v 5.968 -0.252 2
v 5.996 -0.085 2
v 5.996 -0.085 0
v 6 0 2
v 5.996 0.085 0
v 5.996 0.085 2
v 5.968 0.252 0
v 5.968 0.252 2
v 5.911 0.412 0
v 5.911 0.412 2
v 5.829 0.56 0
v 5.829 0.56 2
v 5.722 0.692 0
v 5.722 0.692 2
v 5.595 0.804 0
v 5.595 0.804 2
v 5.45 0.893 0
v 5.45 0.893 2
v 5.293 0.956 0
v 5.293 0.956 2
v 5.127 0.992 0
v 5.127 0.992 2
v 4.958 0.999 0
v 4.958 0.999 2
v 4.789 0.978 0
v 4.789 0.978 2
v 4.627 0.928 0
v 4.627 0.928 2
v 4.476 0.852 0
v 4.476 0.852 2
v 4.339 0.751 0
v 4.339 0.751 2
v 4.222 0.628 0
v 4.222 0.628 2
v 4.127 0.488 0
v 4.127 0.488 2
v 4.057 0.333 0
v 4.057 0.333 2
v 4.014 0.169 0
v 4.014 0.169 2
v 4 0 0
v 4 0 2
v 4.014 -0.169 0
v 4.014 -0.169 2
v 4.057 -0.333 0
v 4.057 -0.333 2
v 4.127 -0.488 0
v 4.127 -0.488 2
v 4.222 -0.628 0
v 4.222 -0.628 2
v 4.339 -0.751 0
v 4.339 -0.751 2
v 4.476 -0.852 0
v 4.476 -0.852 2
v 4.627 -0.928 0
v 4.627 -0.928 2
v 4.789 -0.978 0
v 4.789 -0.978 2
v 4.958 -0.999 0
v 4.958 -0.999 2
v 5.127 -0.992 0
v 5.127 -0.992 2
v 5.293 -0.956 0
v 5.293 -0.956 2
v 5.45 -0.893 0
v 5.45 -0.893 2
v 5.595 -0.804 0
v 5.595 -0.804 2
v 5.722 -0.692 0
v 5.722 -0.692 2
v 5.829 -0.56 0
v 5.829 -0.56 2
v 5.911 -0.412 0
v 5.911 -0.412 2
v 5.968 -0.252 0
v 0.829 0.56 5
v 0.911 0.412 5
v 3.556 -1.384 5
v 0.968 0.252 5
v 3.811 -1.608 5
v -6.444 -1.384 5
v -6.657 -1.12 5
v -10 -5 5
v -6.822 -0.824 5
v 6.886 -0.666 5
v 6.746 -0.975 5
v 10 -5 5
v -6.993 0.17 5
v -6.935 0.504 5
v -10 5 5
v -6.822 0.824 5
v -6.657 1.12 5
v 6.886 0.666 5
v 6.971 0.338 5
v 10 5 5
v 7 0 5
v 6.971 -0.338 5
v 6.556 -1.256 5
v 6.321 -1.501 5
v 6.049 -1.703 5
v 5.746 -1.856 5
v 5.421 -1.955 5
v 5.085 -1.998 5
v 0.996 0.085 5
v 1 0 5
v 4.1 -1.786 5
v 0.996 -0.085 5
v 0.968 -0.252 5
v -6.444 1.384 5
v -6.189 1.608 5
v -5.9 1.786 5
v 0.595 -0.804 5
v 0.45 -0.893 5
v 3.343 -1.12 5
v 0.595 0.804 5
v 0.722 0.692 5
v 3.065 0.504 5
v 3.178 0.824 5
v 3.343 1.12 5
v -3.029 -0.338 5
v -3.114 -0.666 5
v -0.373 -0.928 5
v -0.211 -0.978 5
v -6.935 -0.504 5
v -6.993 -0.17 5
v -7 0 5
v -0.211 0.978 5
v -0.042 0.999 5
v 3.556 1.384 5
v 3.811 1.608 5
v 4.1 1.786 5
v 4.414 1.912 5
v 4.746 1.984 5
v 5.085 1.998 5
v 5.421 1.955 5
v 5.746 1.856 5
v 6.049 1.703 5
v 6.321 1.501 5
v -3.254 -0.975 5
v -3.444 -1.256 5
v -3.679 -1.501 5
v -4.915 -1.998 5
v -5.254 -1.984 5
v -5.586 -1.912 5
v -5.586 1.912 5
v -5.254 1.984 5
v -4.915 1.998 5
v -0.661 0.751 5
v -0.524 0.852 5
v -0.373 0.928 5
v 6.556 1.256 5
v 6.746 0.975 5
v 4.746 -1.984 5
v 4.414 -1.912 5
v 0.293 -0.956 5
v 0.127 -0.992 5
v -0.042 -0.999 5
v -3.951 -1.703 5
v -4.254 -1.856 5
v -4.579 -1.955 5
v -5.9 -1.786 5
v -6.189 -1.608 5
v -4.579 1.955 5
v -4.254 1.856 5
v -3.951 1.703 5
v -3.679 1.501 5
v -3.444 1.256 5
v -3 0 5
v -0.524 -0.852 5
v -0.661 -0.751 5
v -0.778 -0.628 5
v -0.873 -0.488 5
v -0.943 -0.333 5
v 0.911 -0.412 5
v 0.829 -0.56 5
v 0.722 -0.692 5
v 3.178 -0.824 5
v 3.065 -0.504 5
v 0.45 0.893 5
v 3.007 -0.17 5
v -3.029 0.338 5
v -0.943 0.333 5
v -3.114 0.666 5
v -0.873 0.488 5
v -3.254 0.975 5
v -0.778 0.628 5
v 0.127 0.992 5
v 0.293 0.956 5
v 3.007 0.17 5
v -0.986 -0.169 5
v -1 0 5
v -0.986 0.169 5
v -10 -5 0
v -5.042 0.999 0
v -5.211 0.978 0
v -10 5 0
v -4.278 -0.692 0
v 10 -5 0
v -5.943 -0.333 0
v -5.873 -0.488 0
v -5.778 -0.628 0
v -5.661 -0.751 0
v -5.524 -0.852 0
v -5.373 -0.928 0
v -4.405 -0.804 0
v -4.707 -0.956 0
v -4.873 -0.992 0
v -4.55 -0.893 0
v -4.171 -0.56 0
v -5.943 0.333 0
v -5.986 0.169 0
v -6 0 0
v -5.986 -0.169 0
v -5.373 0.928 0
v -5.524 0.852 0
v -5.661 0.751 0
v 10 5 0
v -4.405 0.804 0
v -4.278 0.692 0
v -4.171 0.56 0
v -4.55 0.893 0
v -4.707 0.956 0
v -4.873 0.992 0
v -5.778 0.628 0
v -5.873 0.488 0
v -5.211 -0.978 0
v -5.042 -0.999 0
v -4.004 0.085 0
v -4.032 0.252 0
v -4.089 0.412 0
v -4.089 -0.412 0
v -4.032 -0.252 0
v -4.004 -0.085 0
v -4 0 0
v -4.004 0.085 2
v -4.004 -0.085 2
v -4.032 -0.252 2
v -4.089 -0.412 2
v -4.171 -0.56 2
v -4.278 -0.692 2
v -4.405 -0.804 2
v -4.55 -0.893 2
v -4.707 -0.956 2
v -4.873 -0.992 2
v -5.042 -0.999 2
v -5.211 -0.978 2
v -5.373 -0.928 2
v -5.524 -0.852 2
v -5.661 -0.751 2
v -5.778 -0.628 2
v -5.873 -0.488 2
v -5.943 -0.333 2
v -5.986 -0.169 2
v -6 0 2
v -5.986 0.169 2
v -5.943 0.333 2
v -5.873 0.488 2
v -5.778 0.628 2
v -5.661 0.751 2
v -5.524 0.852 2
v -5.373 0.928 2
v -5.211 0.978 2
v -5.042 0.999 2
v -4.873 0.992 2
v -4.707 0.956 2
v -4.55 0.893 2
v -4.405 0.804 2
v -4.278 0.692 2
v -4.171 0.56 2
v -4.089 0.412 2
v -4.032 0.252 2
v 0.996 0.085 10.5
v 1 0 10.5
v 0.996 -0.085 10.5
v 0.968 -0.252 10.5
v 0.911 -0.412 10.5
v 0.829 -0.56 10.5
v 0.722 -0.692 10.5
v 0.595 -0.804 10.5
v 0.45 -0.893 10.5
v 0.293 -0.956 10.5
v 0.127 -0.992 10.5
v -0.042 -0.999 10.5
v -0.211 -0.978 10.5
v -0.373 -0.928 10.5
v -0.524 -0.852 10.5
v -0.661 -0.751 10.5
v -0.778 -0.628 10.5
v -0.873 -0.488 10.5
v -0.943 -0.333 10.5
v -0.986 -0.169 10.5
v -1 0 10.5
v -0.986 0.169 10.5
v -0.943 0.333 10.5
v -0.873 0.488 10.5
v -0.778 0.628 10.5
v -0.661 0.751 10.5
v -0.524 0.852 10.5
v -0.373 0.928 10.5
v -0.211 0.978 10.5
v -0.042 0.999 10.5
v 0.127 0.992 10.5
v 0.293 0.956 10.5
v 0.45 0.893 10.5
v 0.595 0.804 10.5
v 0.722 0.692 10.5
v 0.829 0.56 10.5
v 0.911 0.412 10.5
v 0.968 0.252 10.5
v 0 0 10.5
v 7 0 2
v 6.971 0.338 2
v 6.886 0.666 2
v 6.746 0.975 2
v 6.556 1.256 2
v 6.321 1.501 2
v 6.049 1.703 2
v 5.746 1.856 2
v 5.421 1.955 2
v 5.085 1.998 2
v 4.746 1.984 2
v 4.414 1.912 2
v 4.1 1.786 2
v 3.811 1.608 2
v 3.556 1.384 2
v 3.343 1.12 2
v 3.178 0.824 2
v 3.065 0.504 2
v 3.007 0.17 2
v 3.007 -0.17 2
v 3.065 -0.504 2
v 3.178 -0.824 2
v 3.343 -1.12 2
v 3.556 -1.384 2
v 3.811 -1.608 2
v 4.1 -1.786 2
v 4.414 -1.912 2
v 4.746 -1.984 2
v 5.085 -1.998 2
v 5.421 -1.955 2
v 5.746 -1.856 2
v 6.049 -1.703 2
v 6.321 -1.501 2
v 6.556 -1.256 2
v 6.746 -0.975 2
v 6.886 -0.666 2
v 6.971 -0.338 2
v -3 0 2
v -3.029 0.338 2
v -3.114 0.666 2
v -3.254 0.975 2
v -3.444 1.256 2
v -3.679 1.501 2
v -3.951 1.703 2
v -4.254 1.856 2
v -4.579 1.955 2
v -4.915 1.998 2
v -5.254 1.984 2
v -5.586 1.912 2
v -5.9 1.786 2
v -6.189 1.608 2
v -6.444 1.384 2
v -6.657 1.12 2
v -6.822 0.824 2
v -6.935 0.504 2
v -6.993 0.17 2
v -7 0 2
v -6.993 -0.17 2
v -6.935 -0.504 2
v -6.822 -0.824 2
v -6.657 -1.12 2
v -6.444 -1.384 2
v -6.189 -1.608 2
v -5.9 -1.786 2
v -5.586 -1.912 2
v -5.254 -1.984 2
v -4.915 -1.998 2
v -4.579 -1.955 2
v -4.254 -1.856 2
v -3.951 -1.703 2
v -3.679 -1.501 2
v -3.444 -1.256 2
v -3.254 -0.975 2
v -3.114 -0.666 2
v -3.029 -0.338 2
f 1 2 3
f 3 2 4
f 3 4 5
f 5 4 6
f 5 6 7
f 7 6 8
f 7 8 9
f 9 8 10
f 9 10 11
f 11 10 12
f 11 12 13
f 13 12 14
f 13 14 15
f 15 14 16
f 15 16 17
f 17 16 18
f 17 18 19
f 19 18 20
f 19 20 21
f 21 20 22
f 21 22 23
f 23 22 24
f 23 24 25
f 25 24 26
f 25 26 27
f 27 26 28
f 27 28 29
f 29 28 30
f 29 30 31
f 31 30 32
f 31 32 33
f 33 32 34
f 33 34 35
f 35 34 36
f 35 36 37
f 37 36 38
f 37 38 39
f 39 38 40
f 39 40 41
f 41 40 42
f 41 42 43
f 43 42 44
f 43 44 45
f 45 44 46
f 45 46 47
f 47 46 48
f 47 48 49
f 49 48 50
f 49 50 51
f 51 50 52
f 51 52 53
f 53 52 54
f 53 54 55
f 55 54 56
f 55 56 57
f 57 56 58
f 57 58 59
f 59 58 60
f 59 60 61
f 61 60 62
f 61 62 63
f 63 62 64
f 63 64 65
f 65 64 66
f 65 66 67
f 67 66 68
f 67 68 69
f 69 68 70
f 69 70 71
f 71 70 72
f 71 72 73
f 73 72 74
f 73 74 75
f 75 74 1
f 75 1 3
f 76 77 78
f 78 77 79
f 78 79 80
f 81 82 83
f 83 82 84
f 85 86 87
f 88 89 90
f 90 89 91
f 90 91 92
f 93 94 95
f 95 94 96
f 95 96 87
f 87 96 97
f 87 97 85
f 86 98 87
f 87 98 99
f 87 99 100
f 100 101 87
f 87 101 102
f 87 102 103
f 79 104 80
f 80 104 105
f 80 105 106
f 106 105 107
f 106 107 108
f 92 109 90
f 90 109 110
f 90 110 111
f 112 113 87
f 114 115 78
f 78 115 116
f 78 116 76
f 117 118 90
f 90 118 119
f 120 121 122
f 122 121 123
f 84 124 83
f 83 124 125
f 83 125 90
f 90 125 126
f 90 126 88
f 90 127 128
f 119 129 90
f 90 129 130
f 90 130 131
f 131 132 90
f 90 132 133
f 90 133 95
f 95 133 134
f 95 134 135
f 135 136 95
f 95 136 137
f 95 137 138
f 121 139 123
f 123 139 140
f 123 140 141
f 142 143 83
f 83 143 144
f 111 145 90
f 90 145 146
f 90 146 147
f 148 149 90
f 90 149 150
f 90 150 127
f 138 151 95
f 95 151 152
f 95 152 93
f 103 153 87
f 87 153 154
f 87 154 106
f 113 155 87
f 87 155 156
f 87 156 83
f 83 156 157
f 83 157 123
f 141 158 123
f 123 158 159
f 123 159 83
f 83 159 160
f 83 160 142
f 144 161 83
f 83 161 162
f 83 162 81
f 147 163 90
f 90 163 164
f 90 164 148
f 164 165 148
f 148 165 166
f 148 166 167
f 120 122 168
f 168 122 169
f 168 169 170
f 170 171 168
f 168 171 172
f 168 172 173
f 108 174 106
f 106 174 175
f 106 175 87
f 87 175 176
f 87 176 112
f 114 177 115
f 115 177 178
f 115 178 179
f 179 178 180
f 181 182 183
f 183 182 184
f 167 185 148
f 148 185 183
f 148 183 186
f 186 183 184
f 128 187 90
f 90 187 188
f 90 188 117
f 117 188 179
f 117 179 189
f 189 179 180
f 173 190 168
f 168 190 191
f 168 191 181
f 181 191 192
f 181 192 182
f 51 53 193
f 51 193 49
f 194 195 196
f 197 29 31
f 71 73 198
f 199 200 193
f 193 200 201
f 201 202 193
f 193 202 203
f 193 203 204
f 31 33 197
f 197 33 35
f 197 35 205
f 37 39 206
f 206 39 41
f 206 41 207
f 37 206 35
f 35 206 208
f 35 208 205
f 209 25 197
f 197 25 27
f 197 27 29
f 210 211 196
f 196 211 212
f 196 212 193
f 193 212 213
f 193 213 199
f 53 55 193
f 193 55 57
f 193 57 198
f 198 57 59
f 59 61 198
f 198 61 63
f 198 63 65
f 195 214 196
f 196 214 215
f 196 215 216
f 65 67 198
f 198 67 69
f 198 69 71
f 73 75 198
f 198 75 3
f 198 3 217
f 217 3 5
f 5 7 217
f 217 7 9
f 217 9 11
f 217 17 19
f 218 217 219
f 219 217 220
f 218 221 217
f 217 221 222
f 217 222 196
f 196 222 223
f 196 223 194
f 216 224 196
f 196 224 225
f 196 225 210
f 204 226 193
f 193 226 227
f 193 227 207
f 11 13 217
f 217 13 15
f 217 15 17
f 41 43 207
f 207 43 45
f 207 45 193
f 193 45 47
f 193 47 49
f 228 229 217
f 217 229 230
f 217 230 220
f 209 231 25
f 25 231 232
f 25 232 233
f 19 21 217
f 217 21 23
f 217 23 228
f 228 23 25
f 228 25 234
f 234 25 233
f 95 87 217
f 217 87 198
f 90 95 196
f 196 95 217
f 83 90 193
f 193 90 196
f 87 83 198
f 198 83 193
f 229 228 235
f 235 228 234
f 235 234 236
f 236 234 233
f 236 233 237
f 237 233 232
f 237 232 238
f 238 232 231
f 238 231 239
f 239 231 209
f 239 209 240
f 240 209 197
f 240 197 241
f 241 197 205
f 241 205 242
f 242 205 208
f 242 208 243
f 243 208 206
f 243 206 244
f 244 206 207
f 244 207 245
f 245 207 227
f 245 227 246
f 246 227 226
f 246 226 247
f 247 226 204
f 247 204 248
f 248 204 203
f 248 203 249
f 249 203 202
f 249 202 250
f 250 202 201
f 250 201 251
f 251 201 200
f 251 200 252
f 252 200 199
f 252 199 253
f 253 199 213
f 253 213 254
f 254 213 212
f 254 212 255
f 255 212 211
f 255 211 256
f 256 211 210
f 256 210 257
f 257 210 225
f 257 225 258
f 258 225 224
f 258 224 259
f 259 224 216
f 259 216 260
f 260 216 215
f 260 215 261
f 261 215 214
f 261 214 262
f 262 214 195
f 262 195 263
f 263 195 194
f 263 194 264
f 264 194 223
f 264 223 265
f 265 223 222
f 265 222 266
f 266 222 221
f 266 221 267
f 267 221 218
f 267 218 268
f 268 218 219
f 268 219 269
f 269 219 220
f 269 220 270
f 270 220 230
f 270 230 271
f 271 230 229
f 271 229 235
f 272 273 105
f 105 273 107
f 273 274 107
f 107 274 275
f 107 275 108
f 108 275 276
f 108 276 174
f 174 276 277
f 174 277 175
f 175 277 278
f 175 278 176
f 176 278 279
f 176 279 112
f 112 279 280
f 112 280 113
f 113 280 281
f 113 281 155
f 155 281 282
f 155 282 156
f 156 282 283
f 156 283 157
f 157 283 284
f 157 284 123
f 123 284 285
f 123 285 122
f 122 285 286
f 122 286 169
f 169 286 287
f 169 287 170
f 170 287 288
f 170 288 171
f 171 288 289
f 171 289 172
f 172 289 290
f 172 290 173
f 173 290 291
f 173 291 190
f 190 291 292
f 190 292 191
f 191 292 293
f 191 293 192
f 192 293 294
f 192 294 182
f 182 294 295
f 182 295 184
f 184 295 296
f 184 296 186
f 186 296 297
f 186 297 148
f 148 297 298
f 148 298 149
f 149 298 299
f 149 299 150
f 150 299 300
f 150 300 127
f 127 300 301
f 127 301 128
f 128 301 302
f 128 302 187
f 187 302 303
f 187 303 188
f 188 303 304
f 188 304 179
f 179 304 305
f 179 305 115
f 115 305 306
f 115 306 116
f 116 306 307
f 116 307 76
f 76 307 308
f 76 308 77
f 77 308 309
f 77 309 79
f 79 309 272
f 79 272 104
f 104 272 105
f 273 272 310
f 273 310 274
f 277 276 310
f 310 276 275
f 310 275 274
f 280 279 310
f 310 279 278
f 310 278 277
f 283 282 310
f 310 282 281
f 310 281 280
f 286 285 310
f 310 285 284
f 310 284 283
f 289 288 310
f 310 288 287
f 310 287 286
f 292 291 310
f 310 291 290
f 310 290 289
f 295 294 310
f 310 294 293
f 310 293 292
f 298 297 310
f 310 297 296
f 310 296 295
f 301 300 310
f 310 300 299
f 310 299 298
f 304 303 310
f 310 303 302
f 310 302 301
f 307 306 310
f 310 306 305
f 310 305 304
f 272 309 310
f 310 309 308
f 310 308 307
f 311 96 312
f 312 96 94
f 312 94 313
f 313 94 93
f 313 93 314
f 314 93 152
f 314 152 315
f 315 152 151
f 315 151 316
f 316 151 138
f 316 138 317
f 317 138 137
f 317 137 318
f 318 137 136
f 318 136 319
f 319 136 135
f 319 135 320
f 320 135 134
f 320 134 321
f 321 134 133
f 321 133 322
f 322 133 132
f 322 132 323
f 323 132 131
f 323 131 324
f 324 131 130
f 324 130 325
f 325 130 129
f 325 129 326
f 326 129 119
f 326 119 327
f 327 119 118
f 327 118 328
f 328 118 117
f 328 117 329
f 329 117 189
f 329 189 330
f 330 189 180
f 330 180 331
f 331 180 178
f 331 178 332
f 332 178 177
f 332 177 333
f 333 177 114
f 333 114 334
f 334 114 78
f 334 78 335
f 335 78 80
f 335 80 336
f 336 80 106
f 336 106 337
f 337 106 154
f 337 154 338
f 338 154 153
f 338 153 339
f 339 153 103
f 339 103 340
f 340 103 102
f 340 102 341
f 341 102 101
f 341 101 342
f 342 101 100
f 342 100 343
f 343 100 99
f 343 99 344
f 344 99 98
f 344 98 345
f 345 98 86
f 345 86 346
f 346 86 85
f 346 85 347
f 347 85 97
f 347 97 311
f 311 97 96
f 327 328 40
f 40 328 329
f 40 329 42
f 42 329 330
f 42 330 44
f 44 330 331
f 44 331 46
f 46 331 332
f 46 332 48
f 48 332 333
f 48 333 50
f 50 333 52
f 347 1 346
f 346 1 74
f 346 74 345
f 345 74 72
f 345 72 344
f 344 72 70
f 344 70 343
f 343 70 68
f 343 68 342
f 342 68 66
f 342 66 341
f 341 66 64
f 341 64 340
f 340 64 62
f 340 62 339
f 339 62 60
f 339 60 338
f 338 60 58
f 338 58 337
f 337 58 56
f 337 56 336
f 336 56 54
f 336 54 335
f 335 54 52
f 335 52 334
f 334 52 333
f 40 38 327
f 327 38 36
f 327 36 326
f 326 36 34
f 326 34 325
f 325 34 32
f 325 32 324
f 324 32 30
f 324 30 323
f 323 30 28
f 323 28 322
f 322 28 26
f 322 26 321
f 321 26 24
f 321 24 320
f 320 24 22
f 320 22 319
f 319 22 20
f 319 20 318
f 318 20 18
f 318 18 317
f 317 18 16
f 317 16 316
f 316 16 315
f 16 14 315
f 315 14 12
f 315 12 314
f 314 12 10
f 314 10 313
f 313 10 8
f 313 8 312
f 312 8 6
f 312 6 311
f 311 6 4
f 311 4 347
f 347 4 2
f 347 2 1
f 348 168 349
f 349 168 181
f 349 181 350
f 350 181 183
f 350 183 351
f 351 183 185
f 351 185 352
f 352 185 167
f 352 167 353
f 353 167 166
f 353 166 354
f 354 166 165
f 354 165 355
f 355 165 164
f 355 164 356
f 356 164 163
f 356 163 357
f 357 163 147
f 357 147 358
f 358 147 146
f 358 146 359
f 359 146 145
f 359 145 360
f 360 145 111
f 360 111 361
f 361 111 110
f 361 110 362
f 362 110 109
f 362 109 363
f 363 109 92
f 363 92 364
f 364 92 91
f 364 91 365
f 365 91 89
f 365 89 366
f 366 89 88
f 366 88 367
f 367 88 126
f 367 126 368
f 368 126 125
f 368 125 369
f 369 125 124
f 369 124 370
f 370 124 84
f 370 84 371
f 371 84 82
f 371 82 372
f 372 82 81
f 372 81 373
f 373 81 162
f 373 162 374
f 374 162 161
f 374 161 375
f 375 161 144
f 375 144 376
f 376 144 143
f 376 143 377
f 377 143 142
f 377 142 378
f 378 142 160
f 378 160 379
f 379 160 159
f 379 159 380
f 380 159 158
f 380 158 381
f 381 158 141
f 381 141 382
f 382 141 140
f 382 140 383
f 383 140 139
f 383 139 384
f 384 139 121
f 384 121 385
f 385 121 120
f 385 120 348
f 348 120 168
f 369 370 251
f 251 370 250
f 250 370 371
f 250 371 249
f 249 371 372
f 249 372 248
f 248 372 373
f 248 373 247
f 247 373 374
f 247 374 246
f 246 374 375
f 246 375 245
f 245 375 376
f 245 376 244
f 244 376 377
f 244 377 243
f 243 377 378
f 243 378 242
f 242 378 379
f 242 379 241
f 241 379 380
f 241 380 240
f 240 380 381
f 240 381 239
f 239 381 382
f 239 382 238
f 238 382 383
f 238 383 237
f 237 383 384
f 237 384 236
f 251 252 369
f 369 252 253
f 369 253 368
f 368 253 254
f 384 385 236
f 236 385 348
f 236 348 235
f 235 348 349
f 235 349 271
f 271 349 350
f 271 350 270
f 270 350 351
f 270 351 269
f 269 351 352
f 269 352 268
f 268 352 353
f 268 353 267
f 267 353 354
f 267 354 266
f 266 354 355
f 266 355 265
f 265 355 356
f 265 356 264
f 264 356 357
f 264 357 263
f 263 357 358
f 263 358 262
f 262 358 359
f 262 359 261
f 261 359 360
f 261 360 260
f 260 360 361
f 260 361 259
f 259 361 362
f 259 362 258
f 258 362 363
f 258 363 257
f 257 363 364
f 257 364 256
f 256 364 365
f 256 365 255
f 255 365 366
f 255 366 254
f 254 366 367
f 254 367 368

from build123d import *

# Parameters (mm, degrees)
SKETCH_1_W          = 20
SKETCH_1_H          = 10
SKETCH_1_R          = 1
EXTRUDE_1_DEPTH     = 5
SKETCH_2_R          = 1
EXTRUDE_2_DEPTH     = 5.5
SKETCH_4_R          = 2
CUT_EXTRUDE_2_DEPTH = 3


with BuildPart() as part:
    # 草图1 → 凸台-拉伸1 (new body)
    with BuildSketch(Plane.XY):
        Rectangle(SKETCH_1_W, SKETCH_1_H)
        with Locations((-5, 0)):
            Circle(SKETCH_1_R, mode=Mode.SUBTRACT)
        with Locations((5, 0)):
            Circle(SKETCH_1_R, mode=Mode.SUBTRACT)
    extrude(amount=EXTRUDE_1_DEPTH)

    # 草图2 → 凸台-拉伸2 (add)
    with BuildSketch(Plane.XY.offset(5)):
        Circle(SKETCH_2_R)
    extrude(amount=EXTRUDE_2_DEPTH)

    # 草图4 → 切除-拉伸2 (cut)
    with BuildSketch(Plane.XY.offset(5)):
        with Locations((5, 0)):
            Circle(SKETCH_4_R)
        with Locations((-5, 0)):
            Circle(SKETCH_4_R)
    extrude(amount=-CUT_EXTRUDE_2_DEPTH, mode=Mode.SUBTRACT)


solid = part.part
